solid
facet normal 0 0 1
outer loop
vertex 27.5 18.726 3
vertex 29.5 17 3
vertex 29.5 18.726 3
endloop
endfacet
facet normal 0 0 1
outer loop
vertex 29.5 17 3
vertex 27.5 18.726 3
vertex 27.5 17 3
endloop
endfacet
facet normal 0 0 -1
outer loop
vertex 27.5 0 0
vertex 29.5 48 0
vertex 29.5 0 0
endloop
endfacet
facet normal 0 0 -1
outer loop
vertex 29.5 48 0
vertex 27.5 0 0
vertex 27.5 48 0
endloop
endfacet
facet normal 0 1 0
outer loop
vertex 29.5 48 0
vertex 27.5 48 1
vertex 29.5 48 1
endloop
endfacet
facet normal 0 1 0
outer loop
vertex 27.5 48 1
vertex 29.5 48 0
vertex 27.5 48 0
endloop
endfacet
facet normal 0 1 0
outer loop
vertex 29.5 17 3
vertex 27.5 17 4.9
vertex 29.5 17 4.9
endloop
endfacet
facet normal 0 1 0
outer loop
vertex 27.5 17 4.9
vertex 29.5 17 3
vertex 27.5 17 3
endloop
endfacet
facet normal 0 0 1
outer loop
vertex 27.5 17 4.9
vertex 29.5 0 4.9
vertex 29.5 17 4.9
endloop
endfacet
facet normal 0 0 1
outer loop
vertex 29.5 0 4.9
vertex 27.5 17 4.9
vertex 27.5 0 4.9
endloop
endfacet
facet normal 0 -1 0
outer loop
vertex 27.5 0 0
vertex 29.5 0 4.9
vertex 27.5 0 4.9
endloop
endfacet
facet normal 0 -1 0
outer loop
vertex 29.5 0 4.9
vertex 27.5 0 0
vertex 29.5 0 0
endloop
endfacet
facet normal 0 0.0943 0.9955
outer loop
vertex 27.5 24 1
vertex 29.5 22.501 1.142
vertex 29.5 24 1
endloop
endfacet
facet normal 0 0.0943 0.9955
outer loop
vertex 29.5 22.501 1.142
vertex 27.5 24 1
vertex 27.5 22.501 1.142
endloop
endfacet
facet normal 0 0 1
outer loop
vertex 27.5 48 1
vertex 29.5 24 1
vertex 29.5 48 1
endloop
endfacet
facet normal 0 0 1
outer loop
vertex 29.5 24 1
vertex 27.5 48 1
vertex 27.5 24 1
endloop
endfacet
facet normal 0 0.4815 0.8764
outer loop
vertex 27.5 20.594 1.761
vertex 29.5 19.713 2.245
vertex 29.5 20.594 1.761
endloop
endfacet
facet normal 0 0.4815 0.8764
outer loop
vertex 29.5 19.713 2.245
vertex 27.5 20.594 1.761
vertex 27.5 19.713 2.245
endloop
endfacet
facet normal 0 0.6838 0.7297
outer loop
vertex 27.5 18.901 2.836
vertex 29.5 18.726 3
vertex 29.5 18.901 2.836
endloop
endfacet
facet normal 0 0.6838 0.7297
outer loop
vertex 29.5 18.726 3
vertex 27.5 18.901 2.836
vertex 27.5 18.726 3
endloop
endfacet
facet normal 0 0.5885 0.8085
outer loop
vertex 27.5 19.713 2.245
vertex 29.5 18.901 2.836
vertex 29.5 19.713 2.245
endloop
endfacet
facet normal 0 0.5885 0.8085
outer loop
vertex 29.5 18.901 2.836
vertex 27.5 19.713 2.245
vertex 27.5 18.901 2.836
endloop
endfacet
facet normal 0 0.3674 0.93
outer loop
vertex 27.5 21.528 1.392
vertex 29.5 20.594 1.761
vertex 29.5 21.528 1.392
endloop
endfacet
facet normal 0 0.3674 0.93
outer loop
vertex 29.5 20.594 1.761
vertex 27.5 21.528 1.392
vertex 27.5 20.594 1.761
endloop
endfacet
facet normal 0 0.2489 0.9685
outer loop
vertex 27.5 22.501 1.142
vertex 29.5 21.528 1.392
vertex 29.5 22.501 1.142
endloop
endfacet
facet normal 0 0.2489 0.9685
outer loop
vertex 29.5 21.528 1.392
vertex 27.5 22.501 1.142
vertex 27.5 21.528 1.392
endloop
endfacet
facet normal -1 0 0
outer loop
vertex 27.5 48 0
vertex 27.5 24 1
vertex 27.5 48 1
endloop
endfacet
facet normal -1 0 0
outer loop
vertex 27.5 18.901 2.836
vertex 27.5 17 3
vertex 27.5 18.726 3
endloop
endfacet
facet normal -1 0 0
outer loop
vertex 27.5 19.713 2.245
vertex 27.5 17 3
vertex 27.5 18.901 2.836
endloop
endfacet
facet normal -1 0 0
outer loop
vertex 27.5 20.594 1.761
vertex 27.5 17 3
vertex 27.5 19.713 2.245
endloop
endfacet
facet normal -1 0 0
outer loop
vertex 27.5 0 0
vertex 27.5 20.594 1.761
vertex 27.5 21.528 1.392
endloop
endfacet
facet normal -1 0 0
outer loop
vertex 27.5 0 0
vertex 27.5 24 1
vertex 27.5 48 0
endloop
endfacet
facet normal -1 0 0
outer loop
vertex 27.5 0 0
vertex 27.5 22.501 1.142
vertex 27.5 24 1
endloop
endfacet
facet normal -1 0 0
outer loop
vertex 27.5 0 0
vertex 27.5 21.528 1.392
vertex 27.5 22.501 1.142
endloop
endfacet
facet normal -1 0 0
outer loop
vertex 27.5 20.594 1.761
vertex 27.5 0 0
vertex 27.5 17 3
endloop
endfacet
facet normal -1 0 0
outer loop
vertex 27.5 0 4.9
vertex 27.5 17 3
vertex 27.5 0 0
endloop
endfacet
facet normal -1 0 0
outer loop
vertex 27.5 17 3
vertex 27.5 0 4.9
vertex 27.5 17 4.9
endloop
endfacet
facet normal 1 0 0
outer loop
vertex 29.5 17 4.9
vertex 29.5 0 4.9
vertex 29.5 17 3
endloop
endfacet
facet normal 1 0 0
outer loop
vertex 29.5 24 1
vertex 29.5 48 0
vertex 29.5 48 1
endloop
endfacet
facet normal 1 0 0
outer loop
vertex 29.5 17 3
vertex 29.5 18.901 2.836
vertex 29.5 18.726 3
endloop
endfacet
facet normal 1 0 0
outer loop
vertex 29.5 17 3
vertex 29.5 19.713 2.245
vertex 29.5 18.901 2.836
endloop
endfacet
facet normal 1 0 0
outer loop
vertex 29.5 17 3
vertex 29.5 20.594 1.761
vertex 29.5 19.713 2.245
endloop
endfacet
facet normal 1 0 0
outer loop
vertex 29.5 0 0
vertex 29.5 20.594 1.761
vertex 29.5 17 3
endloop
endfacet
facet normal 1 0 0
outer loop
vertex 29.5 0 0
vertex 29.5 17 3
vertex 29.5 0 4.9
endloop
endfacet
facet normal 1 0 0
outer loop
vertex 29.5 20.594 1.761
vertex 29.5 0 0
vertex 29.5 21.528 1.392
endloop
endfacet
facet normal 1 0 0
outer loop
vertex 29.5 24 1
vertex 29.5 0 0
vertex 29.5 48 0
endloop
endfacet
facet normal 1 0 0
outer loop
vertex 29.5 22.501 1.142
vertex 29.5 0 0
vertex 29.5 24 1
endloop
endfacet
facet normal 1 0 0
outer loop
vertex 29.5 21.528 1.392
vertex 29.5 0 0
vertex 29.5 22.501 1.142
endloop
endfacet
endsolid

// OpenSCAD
// file: ../common/extrusions.scad
//
// Common extrusions
// Author: Joseph M. Joy FTC 12598 mentor
//
EPSILON = 0.01; // For moving things to properly punch out holes

// Makes a flat (horizontal) "T":
//
// --------------
// |wtXht     --|
// ----\     /---
//      |wbX|
//      |hb |
//      -----
//<xoff>
//
// It could also be an inverted L shape
// if the lower (vertical) bar is wide enough to extend beyond the right 
// hand side of the upper (horizontal) bar.
//
// {xoff} is horizontal distance to the start of the bar.
// {ro} curve of convex corners (not shown above)
// {ri} is the radius of two concave curves
// curve shown as diagonals above.
// t is the thickness of the plate - in
// the z direction.
// Origin is the left hand corner
// of the bounding rectangle.
//
// WARNING: If {ro} and {ri} are too large it will generate sharp
// extrusion artifacts because the straight surfaces are not large to accomodate
// the inner-radius curves.
// 
module T_channelOld(wb, hb, wt, ht, xoff, r, t) {
    ow = 2*wt; // wide enough to 
    oh = 2*(hb+ht); // high enough to descend below the shape

    difference() {
        cube([wt, hb+ht, t]);
        translate([xoff-ow,hb-oh,-EPSILON]) oblong(ow, oh, r, t+2*EPSILON);
        translate([xoff+wb,hb-oh,-EPSILON]) oblong(ow, oh, r, t+2*EPSILON);
    }
}


module T_channel(wb, hb, wt, ht, xoff, ro, ri, t) {
    
    // ow and oh are used to create cutout patterns
    ow = 2*wt; // wide enough to extend to the left and right of shape
    oh = 2*(hb+ht); // high enough to descend below the shape
    
    // Dimensions of the plate that will be cut out - it is just
    // big enough so that the inner-radii can be cut out, no more.
    wp = wb + 2*ri + 2*EPSILON; // dimensions of plate to be cut out
    hp = max(ro, ri) + 2*EPSILON;
    xoffp = xoff - ri - EPSILON;
    yoffp = hb - max(ro, ri) - EPSILON;
    difference() {
        translate([xoffp, yoffp, 0]) cube([wp, hp, t]);
        translate([xoff-ow,hb-oh,-EPSILON]) oblong(ow, oh, ri, t+2*EPSILON);
        translate([xoff+wb,hb-oh,-EPSILON]) oblong(ow, oh, ri, t+2*EPSILON);
    }
    translate([xoff, 0, 0]) oblong(wb, hb, ro, t);
    translate([0, hb, 0]) oblong(wt, ht, ro, t);
}


// Makes a flat (horizontal) "O":
//
// /-------------\
// |             |
// | /--------\  |
// | |         | |
// | |         | |
// | |         | |
// | \         / |
// |  ---------  |
// \------------/
//
//
// It could also be a U or L
// if the oblong hole extends outside the outer
// boundary.
//
// ({xoff},{yoff} is origin of bounding-rectangle of the oblong hole
// {(wo}, {ho}) is the bounding box of the outer oblong.
// {(wi}, {hi}) is the bounding box of the inner (hole) oblong.
// {r} is the radius of the
// curve shown as diagonals above.
// t is the thickness of the plate - in
// the z direction.
// Origin is the left hand corner
// of the bounding rectangle.
// 
module O_channel(wo, ho, wi, hi, xoff, yoff, ro, ri, t) {
    difference() {
        oblong(wo, ho, ro, t);
        translate([xoff, yoff, -EPSILON]) oblong(wi, hi, ri, t+2*EPSILON);
    }
}


// A rectangular prism that fits within {w} x {h} and
// has rounded corners with radius {r} on all 4 sides.
// The actual radius may be reduced so keep the oblong
// viable. {t} is the thickness (in z).
module oblong(w, h, r, t) {
    r = min(r, w/2-EPSILON, h/2-EPSILON);
    translate([r, r, 0])
    linear_extrude(height = t, center = false, convexity = 10) {
        offset(r = r) square([w-2*r, h-2*r]);
    }
}

// A cube that fits within ({w}, {h}, {d}) and has
// all corners rounded with radius r.
module rounded_cube(w, h, d, r) {
        r =  min(r, w/2-EPSILON, h/2-EPSILON, d/2-EPSILON);
        di = 2*r;
    translate([r, r, r]) {
        minkowski() {
            echo(di);
            cube([w-di, h-di, d-di]);
            sphere(r=r);
        }
    }
}

//
// Example code
//
wb = 10;
hb = 20;
wt = 40;
ht = 30;
t = 5;
ro = 5;
ri = 2;
xoff = 10;
move = 30;
$fn = 50;
oblong(wb, hb, ro, t);
translate([0, move, 0]) rounded_cube(wb, hb, t, ro);//, $fn=100);
translate([move, 0, 0]) T_channel(wb, hb, wt, ht, xoff, 5, 1, t);
translate([move, 2*move, 0]) O_channel(wt, hb+ht, wb, 10*hb, xoff, xoff, ro, ri, t);
// main file
//
//  Strain relief for FTC robot phones - driver station and robot controller
//

use <../common/extrusions.scad>

LARGE = 100; // Something larger than any demension - for O to become U
EPSILON = 0.1; // Small emount to extend so that unions and intersections are clean
base_thick = 1;
cable_thick = 3;


// Phone strain relief WITHOUT the
// cutout to make the phone fit snuggly
module phone_strain_relief0(cable_d) {
    cable_w = 12;
    base_w = 55;
    base_d = 30;
    ro = 2;
    ri = 5;
    cable_pad_h = 1.9; // the base of the lug is slightly elevated (z) from the switch base
    cable_gap_d = 1; // a small gap in x between the start of the center protrusion.
    xoff = (base_w-cable_w)/2;
    support_d = cable_d - cable_gap_d;
    shorten_T_d = cable_d - cable_gap_d - EPSILON - ro;
    translate([xoff, support_d, 0]) rotate([90, 0, 0]) oblong(cable_w, cable_thick + cable_pad_h, ro, support_d);
    translate([0, shorten_T_d, 0]) 
        T_channel(
            cable_w, cable_d - shorten_T_d,
            base_w, base_d, 
            xoff,
            ro, ri, 
            cable_thick);
}

module phone_strain_relief() {
    $fn = 50;
    cable_d = 18;
    curve_r = 8; // Curve around base of phone
    curve_offset = 2;
    difference() {
        phone_strain_relief0(cable_d);
        translate([-EPSILON, cable_d-curve_offset, base_thick]) rotate([90,0, 90]) oblong(LARGE, LARGE, curve_r, LARGE);
    }
}

// A vertical sliver of the strain relief - to print and
// test dimensions
module test_slice() {
    base_w = 55;
    xoff = base_w/2;

    intersection() {
        phone_strain_relief();
        translate([xoff, 0, 0]) cube([2, LARGE, LARGE]);
    }
}

//phone_strain_relief();
test_slice();
